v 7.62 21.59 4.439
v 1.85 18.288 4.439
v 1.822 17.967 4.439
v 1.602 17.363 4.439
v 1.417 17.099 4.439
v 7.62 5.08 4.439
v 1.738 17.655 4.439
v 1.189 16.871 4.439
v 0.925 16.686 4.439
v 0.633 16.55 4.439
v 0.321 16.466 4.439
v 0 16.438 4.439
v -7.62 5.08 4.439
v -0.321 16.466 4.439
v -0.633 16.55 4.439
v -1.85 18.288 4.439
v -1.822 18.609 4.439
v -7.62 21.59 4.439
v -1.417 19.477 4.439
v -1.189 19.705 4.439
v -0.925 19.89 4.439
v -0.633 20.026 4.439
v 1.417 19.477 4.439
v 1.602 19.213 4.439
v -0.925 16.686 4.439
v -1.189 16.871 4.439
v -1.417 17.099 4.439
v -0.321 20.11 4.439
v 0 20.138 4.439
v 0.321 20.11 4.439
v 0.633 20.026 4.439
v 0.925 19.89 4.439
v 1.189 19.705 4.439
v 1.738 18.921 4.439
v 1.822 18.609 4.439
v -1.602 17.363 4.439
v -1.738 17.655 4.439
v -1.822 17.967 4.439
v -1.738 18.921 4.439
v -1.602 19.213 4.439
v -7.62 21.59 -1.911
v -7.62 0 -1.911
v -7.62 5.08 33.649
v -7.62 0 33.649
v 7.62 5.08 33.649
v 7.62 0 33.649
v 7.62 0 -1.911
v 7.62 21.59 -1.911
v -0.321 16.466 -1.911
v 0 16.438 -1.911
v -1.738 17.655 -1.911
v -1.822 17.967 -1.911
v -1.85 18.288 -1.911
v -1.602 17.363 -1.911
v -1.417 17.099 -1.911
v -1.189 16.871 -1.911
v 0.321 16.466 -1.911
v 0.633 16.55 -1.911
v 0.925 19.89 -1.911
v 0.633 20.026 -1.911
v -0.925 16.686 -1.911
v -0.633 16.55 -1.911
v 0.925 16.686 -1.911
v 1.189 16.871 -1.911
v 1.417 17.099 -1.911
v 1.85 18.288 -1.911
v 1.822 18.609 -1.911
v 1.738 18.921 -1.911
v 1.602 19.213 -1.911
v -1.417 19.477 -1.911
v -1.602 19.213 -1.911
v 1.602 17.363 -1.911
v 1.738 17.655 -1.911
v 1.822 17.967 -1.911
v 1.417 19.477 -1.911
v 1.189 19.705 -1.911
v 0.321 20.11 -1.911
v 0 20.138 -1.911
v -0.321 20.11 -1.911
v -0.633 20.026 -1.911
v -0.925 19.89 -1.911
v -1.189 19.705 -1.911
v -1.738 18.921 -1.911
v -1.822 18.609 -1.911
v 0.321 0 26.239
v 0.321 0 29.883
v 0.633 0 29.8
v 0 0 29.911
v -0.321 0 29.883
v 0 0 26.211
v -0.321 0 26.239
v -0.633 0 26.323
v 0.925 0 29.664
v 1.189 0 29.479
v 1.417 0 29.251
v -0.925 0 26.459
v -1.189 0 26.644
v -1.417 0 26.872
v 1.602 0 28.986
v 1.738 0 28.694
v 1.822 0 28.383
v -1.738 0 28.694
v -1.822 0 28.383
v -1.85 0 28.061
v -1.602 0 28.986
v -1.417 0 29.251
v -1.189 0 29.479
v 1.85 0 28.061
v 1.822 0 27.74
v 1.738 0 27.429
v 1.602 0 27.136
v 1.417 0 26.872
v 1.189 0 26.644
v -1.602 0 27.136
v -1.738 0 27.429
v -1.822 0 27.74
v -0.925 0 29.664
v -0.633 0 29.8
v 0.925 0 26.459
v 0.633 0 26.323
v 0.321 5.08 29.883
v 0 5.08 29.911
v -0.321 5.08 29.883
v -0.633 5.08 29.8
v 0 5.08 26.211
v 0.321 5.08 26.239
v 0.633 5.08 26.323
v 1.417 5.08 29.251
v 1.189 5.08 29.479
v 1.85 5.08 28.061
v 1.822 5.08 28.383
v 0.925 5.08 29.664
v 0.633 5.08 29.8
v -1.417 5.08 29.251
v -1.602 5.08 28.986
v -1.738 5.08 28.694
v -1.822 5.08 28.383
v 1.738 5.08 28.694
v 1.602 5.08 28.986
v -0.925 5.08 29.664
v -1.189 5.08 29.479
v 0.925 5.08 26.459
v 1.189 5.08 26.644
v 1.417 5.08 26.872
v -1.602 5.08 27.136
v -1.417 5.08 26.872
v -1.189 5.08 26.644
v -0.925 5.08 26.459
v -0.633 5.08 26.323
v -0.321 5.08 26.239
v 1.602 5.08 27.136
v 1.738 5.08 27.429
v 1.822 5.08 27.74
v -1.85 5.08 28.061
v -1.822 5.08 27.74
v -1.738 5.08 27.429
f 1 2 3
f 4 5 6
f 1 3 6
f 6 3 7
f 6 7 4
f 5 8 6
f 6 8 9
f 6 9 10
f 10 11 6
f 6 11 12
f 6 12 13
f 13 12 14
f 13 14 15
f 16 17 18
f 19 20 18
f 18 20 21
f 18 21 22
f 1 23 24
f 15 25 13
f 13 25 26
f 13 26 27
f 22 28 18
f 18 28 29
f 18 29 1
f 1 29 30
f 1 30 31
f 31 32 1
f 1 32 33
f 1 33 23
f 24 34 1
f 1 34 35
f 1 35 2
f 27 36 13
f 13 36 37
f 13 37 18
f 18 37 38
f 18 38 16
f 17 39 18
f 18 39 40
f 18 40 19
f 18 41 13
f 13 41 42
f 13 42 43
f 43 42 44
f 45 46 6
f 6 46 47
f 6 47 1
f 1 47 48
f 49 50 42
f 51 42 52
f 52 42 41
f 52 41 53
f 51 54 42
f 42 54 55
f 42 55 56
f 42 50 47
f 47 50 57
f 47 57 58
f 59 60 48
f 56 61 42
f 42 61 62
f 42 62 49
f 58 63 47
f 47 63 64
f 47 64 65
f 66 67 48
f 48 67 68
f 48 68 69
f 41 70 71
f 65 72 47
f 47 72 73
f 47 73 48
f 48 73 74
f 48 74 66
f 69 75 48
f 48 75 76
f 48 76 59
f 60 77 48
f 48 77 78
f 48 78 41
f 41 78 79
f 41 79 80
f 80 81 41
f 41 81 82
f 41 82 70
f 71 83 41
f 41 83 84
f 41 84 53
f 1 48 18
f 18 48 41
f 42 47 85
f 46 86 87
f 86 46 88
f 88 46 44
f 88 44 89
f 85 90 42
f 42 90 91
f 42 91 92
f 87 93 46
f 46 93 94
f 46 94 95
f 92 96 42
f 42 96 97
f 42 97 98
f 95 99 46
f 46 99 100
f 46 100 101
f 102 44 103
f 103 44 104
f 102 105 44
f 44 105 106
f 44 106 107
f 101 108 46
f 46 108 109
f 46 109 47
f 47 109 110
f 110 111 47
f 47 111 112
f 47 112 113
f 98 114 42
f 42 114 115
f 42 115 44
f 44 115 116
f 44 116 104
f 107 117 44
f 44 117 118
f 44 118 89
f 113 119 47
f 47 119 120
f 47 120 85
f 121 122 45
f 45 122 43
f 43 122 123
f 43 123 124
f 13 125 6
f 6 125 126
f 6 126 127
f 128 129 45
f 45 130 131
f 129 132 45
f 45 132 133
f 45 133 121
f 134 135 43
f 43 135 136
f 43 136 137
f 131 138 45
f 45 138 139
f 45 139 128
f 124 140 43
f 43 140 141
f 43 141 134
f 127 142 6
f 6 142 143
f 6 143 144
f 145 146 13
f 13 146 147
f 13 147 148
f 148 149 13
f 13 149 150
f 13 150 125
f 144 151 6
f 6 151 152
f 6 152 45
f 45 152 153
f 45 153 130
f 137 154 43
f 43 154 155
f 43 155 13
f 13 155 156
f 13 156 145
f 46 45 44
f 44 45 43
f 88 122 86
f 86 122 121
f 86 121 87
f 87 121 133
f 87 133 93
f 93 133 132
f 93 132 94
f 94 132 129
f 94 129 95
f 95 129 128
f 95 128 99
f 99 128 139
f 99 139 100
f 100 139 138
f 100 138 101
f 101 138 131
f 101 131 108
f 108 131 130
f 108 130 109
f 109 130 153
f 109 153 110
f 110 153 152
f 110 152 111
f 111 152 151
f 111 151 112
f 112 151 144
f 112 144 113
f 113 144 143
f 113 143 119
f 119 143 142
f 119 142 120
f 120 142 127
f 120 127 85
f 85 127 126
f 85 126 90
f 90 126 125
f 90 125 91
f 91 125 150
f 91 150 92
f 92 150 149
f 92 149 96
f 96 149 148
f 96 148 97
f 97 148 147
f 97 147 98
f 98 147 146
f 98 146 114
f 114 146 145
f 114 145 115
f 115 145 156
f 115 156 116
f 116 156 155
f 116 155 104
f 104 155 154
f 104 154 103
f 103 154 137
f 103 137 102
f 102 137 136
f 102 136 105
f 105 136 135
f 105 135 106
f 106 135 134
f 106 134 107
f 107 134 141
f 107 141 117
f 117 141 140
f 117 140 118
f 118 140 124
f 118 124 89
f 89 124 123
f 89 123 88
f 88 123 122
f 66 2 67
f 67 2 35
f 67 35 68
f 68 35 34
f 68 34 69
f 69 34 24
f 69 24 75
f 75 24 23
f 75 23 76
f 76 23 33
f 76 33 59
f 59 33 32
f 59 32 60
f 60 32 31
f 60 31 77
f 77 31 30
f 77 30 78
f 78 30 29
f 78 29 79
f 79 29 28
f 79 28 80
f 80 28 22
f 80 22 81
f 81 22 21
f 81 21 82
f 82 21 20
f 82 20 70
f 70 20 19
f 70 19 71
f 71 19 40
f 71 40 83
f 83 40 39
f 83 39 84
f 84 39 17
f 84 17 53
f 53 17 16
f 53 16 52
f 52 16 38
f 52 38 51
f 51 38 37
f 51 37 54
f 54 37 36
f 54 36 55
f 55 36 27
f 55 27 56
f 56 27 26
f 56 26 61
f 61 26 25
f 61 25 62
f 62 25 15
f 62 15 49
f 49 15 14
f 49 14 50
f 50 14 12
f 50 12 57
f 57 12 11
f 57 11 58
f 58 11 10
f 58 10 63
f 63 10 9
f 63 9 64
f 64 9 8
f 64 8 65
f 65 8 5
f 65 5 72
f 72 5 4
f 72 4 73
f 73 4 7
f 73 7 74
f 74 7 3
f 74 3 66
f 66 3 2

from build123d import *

# Parameters (mm, degrees)
SKETCH1_W                = 15.24
SKETCH1_H                = 6.35
BOSS_EXTRUDE1_DEPTH      = 21.59
SKETCH2_W                = 15.24
SKETCH2_H                = 5.08
BOSS_EXTRUDE2_DEPTH      = 29.21
M3_CLEARANCE_HOLE1_D     = 3.7
M3_CLEARANCE_HOLE1_DEPTH = 25.4
M3_CLEARANCE_HOLE1_TIP   = 1.111592145
M3_CLEARANCE_HOLE2_D     = 3.7
M3_CLEARANCE_HOLE2_DEPTH = 25.4
M3_CLEARANCE_HOLE2_TIP   = 1.111592145


with BuildPart() as part:
    # Sketch1 → Boss-Extrude1 (new body)
    with BuildSketch(Plane(origin=(0, 0, 0), x_dir=(1, 0, 0), z_dir=(0, 1, 0))):
        with Locations((0, -1.264380531)):
            Rectangle(SKETCH1_W, SKETCH1_H)
    extrude(amount=BOSS_EXTRUDE1_DEPTH)

    # Sketch2 → Boss-Extrude2 (add)
    with BuildSketch(Plane.XY.offset(4.439380531)):
        with Locations((0, 2.54)):
            Rectangle(SKETCH2_W, SKETCH2_H)
    extrude(amount=BOSS_EXTRUDE2_DEPTH)

    # M3 Clearance Hole1
    with Locations(Plane(origin=(0, 5.08, 0), x_dir=(1, 0, 0), z_dir=(0, 1, 0))):
        with Locations((0, -28.061380531)):
            Hole(M3_CLEARANCE_HOLE1_D / 2, depth=M3_CLEARANCE_HOLE1_DEPTH)
            with Locations((0, 0, -(M3_CLEARANCE_HOLE1_DEPTH + M3_CLEARANCE_HOLE1_TIP / 2))):  # 118° drill point
                Cone(0, M3_CLEARANCE_HOLE1_D / 2, M3_CLEARANCE_HOLE1_TIP, mode=Mode.SUBTRACT)

    # M3 Clearance Hole2
    with Locations(Plane.XY.offset(4.439380531)):
        with Locations((0, 18.288)):
            Hole(M3_CLEARANCE_HOLE2_D / 2, depth=M3_CLEARANCE_HOLE2_DEPTH)
            with Locations((0, 0, -(M3_CLEARANCE_HOLE2_DEPTH + M3_CLEARANCE_HOLE2_TIP / 2))):  # 118° drill point
                Cone(0, M3_CLEARANCE_HOLE2_D / 2, M3_CLEARANCE_HOLE2_TIP, mode=Mode.SUBTRACT)


solid = part.part
